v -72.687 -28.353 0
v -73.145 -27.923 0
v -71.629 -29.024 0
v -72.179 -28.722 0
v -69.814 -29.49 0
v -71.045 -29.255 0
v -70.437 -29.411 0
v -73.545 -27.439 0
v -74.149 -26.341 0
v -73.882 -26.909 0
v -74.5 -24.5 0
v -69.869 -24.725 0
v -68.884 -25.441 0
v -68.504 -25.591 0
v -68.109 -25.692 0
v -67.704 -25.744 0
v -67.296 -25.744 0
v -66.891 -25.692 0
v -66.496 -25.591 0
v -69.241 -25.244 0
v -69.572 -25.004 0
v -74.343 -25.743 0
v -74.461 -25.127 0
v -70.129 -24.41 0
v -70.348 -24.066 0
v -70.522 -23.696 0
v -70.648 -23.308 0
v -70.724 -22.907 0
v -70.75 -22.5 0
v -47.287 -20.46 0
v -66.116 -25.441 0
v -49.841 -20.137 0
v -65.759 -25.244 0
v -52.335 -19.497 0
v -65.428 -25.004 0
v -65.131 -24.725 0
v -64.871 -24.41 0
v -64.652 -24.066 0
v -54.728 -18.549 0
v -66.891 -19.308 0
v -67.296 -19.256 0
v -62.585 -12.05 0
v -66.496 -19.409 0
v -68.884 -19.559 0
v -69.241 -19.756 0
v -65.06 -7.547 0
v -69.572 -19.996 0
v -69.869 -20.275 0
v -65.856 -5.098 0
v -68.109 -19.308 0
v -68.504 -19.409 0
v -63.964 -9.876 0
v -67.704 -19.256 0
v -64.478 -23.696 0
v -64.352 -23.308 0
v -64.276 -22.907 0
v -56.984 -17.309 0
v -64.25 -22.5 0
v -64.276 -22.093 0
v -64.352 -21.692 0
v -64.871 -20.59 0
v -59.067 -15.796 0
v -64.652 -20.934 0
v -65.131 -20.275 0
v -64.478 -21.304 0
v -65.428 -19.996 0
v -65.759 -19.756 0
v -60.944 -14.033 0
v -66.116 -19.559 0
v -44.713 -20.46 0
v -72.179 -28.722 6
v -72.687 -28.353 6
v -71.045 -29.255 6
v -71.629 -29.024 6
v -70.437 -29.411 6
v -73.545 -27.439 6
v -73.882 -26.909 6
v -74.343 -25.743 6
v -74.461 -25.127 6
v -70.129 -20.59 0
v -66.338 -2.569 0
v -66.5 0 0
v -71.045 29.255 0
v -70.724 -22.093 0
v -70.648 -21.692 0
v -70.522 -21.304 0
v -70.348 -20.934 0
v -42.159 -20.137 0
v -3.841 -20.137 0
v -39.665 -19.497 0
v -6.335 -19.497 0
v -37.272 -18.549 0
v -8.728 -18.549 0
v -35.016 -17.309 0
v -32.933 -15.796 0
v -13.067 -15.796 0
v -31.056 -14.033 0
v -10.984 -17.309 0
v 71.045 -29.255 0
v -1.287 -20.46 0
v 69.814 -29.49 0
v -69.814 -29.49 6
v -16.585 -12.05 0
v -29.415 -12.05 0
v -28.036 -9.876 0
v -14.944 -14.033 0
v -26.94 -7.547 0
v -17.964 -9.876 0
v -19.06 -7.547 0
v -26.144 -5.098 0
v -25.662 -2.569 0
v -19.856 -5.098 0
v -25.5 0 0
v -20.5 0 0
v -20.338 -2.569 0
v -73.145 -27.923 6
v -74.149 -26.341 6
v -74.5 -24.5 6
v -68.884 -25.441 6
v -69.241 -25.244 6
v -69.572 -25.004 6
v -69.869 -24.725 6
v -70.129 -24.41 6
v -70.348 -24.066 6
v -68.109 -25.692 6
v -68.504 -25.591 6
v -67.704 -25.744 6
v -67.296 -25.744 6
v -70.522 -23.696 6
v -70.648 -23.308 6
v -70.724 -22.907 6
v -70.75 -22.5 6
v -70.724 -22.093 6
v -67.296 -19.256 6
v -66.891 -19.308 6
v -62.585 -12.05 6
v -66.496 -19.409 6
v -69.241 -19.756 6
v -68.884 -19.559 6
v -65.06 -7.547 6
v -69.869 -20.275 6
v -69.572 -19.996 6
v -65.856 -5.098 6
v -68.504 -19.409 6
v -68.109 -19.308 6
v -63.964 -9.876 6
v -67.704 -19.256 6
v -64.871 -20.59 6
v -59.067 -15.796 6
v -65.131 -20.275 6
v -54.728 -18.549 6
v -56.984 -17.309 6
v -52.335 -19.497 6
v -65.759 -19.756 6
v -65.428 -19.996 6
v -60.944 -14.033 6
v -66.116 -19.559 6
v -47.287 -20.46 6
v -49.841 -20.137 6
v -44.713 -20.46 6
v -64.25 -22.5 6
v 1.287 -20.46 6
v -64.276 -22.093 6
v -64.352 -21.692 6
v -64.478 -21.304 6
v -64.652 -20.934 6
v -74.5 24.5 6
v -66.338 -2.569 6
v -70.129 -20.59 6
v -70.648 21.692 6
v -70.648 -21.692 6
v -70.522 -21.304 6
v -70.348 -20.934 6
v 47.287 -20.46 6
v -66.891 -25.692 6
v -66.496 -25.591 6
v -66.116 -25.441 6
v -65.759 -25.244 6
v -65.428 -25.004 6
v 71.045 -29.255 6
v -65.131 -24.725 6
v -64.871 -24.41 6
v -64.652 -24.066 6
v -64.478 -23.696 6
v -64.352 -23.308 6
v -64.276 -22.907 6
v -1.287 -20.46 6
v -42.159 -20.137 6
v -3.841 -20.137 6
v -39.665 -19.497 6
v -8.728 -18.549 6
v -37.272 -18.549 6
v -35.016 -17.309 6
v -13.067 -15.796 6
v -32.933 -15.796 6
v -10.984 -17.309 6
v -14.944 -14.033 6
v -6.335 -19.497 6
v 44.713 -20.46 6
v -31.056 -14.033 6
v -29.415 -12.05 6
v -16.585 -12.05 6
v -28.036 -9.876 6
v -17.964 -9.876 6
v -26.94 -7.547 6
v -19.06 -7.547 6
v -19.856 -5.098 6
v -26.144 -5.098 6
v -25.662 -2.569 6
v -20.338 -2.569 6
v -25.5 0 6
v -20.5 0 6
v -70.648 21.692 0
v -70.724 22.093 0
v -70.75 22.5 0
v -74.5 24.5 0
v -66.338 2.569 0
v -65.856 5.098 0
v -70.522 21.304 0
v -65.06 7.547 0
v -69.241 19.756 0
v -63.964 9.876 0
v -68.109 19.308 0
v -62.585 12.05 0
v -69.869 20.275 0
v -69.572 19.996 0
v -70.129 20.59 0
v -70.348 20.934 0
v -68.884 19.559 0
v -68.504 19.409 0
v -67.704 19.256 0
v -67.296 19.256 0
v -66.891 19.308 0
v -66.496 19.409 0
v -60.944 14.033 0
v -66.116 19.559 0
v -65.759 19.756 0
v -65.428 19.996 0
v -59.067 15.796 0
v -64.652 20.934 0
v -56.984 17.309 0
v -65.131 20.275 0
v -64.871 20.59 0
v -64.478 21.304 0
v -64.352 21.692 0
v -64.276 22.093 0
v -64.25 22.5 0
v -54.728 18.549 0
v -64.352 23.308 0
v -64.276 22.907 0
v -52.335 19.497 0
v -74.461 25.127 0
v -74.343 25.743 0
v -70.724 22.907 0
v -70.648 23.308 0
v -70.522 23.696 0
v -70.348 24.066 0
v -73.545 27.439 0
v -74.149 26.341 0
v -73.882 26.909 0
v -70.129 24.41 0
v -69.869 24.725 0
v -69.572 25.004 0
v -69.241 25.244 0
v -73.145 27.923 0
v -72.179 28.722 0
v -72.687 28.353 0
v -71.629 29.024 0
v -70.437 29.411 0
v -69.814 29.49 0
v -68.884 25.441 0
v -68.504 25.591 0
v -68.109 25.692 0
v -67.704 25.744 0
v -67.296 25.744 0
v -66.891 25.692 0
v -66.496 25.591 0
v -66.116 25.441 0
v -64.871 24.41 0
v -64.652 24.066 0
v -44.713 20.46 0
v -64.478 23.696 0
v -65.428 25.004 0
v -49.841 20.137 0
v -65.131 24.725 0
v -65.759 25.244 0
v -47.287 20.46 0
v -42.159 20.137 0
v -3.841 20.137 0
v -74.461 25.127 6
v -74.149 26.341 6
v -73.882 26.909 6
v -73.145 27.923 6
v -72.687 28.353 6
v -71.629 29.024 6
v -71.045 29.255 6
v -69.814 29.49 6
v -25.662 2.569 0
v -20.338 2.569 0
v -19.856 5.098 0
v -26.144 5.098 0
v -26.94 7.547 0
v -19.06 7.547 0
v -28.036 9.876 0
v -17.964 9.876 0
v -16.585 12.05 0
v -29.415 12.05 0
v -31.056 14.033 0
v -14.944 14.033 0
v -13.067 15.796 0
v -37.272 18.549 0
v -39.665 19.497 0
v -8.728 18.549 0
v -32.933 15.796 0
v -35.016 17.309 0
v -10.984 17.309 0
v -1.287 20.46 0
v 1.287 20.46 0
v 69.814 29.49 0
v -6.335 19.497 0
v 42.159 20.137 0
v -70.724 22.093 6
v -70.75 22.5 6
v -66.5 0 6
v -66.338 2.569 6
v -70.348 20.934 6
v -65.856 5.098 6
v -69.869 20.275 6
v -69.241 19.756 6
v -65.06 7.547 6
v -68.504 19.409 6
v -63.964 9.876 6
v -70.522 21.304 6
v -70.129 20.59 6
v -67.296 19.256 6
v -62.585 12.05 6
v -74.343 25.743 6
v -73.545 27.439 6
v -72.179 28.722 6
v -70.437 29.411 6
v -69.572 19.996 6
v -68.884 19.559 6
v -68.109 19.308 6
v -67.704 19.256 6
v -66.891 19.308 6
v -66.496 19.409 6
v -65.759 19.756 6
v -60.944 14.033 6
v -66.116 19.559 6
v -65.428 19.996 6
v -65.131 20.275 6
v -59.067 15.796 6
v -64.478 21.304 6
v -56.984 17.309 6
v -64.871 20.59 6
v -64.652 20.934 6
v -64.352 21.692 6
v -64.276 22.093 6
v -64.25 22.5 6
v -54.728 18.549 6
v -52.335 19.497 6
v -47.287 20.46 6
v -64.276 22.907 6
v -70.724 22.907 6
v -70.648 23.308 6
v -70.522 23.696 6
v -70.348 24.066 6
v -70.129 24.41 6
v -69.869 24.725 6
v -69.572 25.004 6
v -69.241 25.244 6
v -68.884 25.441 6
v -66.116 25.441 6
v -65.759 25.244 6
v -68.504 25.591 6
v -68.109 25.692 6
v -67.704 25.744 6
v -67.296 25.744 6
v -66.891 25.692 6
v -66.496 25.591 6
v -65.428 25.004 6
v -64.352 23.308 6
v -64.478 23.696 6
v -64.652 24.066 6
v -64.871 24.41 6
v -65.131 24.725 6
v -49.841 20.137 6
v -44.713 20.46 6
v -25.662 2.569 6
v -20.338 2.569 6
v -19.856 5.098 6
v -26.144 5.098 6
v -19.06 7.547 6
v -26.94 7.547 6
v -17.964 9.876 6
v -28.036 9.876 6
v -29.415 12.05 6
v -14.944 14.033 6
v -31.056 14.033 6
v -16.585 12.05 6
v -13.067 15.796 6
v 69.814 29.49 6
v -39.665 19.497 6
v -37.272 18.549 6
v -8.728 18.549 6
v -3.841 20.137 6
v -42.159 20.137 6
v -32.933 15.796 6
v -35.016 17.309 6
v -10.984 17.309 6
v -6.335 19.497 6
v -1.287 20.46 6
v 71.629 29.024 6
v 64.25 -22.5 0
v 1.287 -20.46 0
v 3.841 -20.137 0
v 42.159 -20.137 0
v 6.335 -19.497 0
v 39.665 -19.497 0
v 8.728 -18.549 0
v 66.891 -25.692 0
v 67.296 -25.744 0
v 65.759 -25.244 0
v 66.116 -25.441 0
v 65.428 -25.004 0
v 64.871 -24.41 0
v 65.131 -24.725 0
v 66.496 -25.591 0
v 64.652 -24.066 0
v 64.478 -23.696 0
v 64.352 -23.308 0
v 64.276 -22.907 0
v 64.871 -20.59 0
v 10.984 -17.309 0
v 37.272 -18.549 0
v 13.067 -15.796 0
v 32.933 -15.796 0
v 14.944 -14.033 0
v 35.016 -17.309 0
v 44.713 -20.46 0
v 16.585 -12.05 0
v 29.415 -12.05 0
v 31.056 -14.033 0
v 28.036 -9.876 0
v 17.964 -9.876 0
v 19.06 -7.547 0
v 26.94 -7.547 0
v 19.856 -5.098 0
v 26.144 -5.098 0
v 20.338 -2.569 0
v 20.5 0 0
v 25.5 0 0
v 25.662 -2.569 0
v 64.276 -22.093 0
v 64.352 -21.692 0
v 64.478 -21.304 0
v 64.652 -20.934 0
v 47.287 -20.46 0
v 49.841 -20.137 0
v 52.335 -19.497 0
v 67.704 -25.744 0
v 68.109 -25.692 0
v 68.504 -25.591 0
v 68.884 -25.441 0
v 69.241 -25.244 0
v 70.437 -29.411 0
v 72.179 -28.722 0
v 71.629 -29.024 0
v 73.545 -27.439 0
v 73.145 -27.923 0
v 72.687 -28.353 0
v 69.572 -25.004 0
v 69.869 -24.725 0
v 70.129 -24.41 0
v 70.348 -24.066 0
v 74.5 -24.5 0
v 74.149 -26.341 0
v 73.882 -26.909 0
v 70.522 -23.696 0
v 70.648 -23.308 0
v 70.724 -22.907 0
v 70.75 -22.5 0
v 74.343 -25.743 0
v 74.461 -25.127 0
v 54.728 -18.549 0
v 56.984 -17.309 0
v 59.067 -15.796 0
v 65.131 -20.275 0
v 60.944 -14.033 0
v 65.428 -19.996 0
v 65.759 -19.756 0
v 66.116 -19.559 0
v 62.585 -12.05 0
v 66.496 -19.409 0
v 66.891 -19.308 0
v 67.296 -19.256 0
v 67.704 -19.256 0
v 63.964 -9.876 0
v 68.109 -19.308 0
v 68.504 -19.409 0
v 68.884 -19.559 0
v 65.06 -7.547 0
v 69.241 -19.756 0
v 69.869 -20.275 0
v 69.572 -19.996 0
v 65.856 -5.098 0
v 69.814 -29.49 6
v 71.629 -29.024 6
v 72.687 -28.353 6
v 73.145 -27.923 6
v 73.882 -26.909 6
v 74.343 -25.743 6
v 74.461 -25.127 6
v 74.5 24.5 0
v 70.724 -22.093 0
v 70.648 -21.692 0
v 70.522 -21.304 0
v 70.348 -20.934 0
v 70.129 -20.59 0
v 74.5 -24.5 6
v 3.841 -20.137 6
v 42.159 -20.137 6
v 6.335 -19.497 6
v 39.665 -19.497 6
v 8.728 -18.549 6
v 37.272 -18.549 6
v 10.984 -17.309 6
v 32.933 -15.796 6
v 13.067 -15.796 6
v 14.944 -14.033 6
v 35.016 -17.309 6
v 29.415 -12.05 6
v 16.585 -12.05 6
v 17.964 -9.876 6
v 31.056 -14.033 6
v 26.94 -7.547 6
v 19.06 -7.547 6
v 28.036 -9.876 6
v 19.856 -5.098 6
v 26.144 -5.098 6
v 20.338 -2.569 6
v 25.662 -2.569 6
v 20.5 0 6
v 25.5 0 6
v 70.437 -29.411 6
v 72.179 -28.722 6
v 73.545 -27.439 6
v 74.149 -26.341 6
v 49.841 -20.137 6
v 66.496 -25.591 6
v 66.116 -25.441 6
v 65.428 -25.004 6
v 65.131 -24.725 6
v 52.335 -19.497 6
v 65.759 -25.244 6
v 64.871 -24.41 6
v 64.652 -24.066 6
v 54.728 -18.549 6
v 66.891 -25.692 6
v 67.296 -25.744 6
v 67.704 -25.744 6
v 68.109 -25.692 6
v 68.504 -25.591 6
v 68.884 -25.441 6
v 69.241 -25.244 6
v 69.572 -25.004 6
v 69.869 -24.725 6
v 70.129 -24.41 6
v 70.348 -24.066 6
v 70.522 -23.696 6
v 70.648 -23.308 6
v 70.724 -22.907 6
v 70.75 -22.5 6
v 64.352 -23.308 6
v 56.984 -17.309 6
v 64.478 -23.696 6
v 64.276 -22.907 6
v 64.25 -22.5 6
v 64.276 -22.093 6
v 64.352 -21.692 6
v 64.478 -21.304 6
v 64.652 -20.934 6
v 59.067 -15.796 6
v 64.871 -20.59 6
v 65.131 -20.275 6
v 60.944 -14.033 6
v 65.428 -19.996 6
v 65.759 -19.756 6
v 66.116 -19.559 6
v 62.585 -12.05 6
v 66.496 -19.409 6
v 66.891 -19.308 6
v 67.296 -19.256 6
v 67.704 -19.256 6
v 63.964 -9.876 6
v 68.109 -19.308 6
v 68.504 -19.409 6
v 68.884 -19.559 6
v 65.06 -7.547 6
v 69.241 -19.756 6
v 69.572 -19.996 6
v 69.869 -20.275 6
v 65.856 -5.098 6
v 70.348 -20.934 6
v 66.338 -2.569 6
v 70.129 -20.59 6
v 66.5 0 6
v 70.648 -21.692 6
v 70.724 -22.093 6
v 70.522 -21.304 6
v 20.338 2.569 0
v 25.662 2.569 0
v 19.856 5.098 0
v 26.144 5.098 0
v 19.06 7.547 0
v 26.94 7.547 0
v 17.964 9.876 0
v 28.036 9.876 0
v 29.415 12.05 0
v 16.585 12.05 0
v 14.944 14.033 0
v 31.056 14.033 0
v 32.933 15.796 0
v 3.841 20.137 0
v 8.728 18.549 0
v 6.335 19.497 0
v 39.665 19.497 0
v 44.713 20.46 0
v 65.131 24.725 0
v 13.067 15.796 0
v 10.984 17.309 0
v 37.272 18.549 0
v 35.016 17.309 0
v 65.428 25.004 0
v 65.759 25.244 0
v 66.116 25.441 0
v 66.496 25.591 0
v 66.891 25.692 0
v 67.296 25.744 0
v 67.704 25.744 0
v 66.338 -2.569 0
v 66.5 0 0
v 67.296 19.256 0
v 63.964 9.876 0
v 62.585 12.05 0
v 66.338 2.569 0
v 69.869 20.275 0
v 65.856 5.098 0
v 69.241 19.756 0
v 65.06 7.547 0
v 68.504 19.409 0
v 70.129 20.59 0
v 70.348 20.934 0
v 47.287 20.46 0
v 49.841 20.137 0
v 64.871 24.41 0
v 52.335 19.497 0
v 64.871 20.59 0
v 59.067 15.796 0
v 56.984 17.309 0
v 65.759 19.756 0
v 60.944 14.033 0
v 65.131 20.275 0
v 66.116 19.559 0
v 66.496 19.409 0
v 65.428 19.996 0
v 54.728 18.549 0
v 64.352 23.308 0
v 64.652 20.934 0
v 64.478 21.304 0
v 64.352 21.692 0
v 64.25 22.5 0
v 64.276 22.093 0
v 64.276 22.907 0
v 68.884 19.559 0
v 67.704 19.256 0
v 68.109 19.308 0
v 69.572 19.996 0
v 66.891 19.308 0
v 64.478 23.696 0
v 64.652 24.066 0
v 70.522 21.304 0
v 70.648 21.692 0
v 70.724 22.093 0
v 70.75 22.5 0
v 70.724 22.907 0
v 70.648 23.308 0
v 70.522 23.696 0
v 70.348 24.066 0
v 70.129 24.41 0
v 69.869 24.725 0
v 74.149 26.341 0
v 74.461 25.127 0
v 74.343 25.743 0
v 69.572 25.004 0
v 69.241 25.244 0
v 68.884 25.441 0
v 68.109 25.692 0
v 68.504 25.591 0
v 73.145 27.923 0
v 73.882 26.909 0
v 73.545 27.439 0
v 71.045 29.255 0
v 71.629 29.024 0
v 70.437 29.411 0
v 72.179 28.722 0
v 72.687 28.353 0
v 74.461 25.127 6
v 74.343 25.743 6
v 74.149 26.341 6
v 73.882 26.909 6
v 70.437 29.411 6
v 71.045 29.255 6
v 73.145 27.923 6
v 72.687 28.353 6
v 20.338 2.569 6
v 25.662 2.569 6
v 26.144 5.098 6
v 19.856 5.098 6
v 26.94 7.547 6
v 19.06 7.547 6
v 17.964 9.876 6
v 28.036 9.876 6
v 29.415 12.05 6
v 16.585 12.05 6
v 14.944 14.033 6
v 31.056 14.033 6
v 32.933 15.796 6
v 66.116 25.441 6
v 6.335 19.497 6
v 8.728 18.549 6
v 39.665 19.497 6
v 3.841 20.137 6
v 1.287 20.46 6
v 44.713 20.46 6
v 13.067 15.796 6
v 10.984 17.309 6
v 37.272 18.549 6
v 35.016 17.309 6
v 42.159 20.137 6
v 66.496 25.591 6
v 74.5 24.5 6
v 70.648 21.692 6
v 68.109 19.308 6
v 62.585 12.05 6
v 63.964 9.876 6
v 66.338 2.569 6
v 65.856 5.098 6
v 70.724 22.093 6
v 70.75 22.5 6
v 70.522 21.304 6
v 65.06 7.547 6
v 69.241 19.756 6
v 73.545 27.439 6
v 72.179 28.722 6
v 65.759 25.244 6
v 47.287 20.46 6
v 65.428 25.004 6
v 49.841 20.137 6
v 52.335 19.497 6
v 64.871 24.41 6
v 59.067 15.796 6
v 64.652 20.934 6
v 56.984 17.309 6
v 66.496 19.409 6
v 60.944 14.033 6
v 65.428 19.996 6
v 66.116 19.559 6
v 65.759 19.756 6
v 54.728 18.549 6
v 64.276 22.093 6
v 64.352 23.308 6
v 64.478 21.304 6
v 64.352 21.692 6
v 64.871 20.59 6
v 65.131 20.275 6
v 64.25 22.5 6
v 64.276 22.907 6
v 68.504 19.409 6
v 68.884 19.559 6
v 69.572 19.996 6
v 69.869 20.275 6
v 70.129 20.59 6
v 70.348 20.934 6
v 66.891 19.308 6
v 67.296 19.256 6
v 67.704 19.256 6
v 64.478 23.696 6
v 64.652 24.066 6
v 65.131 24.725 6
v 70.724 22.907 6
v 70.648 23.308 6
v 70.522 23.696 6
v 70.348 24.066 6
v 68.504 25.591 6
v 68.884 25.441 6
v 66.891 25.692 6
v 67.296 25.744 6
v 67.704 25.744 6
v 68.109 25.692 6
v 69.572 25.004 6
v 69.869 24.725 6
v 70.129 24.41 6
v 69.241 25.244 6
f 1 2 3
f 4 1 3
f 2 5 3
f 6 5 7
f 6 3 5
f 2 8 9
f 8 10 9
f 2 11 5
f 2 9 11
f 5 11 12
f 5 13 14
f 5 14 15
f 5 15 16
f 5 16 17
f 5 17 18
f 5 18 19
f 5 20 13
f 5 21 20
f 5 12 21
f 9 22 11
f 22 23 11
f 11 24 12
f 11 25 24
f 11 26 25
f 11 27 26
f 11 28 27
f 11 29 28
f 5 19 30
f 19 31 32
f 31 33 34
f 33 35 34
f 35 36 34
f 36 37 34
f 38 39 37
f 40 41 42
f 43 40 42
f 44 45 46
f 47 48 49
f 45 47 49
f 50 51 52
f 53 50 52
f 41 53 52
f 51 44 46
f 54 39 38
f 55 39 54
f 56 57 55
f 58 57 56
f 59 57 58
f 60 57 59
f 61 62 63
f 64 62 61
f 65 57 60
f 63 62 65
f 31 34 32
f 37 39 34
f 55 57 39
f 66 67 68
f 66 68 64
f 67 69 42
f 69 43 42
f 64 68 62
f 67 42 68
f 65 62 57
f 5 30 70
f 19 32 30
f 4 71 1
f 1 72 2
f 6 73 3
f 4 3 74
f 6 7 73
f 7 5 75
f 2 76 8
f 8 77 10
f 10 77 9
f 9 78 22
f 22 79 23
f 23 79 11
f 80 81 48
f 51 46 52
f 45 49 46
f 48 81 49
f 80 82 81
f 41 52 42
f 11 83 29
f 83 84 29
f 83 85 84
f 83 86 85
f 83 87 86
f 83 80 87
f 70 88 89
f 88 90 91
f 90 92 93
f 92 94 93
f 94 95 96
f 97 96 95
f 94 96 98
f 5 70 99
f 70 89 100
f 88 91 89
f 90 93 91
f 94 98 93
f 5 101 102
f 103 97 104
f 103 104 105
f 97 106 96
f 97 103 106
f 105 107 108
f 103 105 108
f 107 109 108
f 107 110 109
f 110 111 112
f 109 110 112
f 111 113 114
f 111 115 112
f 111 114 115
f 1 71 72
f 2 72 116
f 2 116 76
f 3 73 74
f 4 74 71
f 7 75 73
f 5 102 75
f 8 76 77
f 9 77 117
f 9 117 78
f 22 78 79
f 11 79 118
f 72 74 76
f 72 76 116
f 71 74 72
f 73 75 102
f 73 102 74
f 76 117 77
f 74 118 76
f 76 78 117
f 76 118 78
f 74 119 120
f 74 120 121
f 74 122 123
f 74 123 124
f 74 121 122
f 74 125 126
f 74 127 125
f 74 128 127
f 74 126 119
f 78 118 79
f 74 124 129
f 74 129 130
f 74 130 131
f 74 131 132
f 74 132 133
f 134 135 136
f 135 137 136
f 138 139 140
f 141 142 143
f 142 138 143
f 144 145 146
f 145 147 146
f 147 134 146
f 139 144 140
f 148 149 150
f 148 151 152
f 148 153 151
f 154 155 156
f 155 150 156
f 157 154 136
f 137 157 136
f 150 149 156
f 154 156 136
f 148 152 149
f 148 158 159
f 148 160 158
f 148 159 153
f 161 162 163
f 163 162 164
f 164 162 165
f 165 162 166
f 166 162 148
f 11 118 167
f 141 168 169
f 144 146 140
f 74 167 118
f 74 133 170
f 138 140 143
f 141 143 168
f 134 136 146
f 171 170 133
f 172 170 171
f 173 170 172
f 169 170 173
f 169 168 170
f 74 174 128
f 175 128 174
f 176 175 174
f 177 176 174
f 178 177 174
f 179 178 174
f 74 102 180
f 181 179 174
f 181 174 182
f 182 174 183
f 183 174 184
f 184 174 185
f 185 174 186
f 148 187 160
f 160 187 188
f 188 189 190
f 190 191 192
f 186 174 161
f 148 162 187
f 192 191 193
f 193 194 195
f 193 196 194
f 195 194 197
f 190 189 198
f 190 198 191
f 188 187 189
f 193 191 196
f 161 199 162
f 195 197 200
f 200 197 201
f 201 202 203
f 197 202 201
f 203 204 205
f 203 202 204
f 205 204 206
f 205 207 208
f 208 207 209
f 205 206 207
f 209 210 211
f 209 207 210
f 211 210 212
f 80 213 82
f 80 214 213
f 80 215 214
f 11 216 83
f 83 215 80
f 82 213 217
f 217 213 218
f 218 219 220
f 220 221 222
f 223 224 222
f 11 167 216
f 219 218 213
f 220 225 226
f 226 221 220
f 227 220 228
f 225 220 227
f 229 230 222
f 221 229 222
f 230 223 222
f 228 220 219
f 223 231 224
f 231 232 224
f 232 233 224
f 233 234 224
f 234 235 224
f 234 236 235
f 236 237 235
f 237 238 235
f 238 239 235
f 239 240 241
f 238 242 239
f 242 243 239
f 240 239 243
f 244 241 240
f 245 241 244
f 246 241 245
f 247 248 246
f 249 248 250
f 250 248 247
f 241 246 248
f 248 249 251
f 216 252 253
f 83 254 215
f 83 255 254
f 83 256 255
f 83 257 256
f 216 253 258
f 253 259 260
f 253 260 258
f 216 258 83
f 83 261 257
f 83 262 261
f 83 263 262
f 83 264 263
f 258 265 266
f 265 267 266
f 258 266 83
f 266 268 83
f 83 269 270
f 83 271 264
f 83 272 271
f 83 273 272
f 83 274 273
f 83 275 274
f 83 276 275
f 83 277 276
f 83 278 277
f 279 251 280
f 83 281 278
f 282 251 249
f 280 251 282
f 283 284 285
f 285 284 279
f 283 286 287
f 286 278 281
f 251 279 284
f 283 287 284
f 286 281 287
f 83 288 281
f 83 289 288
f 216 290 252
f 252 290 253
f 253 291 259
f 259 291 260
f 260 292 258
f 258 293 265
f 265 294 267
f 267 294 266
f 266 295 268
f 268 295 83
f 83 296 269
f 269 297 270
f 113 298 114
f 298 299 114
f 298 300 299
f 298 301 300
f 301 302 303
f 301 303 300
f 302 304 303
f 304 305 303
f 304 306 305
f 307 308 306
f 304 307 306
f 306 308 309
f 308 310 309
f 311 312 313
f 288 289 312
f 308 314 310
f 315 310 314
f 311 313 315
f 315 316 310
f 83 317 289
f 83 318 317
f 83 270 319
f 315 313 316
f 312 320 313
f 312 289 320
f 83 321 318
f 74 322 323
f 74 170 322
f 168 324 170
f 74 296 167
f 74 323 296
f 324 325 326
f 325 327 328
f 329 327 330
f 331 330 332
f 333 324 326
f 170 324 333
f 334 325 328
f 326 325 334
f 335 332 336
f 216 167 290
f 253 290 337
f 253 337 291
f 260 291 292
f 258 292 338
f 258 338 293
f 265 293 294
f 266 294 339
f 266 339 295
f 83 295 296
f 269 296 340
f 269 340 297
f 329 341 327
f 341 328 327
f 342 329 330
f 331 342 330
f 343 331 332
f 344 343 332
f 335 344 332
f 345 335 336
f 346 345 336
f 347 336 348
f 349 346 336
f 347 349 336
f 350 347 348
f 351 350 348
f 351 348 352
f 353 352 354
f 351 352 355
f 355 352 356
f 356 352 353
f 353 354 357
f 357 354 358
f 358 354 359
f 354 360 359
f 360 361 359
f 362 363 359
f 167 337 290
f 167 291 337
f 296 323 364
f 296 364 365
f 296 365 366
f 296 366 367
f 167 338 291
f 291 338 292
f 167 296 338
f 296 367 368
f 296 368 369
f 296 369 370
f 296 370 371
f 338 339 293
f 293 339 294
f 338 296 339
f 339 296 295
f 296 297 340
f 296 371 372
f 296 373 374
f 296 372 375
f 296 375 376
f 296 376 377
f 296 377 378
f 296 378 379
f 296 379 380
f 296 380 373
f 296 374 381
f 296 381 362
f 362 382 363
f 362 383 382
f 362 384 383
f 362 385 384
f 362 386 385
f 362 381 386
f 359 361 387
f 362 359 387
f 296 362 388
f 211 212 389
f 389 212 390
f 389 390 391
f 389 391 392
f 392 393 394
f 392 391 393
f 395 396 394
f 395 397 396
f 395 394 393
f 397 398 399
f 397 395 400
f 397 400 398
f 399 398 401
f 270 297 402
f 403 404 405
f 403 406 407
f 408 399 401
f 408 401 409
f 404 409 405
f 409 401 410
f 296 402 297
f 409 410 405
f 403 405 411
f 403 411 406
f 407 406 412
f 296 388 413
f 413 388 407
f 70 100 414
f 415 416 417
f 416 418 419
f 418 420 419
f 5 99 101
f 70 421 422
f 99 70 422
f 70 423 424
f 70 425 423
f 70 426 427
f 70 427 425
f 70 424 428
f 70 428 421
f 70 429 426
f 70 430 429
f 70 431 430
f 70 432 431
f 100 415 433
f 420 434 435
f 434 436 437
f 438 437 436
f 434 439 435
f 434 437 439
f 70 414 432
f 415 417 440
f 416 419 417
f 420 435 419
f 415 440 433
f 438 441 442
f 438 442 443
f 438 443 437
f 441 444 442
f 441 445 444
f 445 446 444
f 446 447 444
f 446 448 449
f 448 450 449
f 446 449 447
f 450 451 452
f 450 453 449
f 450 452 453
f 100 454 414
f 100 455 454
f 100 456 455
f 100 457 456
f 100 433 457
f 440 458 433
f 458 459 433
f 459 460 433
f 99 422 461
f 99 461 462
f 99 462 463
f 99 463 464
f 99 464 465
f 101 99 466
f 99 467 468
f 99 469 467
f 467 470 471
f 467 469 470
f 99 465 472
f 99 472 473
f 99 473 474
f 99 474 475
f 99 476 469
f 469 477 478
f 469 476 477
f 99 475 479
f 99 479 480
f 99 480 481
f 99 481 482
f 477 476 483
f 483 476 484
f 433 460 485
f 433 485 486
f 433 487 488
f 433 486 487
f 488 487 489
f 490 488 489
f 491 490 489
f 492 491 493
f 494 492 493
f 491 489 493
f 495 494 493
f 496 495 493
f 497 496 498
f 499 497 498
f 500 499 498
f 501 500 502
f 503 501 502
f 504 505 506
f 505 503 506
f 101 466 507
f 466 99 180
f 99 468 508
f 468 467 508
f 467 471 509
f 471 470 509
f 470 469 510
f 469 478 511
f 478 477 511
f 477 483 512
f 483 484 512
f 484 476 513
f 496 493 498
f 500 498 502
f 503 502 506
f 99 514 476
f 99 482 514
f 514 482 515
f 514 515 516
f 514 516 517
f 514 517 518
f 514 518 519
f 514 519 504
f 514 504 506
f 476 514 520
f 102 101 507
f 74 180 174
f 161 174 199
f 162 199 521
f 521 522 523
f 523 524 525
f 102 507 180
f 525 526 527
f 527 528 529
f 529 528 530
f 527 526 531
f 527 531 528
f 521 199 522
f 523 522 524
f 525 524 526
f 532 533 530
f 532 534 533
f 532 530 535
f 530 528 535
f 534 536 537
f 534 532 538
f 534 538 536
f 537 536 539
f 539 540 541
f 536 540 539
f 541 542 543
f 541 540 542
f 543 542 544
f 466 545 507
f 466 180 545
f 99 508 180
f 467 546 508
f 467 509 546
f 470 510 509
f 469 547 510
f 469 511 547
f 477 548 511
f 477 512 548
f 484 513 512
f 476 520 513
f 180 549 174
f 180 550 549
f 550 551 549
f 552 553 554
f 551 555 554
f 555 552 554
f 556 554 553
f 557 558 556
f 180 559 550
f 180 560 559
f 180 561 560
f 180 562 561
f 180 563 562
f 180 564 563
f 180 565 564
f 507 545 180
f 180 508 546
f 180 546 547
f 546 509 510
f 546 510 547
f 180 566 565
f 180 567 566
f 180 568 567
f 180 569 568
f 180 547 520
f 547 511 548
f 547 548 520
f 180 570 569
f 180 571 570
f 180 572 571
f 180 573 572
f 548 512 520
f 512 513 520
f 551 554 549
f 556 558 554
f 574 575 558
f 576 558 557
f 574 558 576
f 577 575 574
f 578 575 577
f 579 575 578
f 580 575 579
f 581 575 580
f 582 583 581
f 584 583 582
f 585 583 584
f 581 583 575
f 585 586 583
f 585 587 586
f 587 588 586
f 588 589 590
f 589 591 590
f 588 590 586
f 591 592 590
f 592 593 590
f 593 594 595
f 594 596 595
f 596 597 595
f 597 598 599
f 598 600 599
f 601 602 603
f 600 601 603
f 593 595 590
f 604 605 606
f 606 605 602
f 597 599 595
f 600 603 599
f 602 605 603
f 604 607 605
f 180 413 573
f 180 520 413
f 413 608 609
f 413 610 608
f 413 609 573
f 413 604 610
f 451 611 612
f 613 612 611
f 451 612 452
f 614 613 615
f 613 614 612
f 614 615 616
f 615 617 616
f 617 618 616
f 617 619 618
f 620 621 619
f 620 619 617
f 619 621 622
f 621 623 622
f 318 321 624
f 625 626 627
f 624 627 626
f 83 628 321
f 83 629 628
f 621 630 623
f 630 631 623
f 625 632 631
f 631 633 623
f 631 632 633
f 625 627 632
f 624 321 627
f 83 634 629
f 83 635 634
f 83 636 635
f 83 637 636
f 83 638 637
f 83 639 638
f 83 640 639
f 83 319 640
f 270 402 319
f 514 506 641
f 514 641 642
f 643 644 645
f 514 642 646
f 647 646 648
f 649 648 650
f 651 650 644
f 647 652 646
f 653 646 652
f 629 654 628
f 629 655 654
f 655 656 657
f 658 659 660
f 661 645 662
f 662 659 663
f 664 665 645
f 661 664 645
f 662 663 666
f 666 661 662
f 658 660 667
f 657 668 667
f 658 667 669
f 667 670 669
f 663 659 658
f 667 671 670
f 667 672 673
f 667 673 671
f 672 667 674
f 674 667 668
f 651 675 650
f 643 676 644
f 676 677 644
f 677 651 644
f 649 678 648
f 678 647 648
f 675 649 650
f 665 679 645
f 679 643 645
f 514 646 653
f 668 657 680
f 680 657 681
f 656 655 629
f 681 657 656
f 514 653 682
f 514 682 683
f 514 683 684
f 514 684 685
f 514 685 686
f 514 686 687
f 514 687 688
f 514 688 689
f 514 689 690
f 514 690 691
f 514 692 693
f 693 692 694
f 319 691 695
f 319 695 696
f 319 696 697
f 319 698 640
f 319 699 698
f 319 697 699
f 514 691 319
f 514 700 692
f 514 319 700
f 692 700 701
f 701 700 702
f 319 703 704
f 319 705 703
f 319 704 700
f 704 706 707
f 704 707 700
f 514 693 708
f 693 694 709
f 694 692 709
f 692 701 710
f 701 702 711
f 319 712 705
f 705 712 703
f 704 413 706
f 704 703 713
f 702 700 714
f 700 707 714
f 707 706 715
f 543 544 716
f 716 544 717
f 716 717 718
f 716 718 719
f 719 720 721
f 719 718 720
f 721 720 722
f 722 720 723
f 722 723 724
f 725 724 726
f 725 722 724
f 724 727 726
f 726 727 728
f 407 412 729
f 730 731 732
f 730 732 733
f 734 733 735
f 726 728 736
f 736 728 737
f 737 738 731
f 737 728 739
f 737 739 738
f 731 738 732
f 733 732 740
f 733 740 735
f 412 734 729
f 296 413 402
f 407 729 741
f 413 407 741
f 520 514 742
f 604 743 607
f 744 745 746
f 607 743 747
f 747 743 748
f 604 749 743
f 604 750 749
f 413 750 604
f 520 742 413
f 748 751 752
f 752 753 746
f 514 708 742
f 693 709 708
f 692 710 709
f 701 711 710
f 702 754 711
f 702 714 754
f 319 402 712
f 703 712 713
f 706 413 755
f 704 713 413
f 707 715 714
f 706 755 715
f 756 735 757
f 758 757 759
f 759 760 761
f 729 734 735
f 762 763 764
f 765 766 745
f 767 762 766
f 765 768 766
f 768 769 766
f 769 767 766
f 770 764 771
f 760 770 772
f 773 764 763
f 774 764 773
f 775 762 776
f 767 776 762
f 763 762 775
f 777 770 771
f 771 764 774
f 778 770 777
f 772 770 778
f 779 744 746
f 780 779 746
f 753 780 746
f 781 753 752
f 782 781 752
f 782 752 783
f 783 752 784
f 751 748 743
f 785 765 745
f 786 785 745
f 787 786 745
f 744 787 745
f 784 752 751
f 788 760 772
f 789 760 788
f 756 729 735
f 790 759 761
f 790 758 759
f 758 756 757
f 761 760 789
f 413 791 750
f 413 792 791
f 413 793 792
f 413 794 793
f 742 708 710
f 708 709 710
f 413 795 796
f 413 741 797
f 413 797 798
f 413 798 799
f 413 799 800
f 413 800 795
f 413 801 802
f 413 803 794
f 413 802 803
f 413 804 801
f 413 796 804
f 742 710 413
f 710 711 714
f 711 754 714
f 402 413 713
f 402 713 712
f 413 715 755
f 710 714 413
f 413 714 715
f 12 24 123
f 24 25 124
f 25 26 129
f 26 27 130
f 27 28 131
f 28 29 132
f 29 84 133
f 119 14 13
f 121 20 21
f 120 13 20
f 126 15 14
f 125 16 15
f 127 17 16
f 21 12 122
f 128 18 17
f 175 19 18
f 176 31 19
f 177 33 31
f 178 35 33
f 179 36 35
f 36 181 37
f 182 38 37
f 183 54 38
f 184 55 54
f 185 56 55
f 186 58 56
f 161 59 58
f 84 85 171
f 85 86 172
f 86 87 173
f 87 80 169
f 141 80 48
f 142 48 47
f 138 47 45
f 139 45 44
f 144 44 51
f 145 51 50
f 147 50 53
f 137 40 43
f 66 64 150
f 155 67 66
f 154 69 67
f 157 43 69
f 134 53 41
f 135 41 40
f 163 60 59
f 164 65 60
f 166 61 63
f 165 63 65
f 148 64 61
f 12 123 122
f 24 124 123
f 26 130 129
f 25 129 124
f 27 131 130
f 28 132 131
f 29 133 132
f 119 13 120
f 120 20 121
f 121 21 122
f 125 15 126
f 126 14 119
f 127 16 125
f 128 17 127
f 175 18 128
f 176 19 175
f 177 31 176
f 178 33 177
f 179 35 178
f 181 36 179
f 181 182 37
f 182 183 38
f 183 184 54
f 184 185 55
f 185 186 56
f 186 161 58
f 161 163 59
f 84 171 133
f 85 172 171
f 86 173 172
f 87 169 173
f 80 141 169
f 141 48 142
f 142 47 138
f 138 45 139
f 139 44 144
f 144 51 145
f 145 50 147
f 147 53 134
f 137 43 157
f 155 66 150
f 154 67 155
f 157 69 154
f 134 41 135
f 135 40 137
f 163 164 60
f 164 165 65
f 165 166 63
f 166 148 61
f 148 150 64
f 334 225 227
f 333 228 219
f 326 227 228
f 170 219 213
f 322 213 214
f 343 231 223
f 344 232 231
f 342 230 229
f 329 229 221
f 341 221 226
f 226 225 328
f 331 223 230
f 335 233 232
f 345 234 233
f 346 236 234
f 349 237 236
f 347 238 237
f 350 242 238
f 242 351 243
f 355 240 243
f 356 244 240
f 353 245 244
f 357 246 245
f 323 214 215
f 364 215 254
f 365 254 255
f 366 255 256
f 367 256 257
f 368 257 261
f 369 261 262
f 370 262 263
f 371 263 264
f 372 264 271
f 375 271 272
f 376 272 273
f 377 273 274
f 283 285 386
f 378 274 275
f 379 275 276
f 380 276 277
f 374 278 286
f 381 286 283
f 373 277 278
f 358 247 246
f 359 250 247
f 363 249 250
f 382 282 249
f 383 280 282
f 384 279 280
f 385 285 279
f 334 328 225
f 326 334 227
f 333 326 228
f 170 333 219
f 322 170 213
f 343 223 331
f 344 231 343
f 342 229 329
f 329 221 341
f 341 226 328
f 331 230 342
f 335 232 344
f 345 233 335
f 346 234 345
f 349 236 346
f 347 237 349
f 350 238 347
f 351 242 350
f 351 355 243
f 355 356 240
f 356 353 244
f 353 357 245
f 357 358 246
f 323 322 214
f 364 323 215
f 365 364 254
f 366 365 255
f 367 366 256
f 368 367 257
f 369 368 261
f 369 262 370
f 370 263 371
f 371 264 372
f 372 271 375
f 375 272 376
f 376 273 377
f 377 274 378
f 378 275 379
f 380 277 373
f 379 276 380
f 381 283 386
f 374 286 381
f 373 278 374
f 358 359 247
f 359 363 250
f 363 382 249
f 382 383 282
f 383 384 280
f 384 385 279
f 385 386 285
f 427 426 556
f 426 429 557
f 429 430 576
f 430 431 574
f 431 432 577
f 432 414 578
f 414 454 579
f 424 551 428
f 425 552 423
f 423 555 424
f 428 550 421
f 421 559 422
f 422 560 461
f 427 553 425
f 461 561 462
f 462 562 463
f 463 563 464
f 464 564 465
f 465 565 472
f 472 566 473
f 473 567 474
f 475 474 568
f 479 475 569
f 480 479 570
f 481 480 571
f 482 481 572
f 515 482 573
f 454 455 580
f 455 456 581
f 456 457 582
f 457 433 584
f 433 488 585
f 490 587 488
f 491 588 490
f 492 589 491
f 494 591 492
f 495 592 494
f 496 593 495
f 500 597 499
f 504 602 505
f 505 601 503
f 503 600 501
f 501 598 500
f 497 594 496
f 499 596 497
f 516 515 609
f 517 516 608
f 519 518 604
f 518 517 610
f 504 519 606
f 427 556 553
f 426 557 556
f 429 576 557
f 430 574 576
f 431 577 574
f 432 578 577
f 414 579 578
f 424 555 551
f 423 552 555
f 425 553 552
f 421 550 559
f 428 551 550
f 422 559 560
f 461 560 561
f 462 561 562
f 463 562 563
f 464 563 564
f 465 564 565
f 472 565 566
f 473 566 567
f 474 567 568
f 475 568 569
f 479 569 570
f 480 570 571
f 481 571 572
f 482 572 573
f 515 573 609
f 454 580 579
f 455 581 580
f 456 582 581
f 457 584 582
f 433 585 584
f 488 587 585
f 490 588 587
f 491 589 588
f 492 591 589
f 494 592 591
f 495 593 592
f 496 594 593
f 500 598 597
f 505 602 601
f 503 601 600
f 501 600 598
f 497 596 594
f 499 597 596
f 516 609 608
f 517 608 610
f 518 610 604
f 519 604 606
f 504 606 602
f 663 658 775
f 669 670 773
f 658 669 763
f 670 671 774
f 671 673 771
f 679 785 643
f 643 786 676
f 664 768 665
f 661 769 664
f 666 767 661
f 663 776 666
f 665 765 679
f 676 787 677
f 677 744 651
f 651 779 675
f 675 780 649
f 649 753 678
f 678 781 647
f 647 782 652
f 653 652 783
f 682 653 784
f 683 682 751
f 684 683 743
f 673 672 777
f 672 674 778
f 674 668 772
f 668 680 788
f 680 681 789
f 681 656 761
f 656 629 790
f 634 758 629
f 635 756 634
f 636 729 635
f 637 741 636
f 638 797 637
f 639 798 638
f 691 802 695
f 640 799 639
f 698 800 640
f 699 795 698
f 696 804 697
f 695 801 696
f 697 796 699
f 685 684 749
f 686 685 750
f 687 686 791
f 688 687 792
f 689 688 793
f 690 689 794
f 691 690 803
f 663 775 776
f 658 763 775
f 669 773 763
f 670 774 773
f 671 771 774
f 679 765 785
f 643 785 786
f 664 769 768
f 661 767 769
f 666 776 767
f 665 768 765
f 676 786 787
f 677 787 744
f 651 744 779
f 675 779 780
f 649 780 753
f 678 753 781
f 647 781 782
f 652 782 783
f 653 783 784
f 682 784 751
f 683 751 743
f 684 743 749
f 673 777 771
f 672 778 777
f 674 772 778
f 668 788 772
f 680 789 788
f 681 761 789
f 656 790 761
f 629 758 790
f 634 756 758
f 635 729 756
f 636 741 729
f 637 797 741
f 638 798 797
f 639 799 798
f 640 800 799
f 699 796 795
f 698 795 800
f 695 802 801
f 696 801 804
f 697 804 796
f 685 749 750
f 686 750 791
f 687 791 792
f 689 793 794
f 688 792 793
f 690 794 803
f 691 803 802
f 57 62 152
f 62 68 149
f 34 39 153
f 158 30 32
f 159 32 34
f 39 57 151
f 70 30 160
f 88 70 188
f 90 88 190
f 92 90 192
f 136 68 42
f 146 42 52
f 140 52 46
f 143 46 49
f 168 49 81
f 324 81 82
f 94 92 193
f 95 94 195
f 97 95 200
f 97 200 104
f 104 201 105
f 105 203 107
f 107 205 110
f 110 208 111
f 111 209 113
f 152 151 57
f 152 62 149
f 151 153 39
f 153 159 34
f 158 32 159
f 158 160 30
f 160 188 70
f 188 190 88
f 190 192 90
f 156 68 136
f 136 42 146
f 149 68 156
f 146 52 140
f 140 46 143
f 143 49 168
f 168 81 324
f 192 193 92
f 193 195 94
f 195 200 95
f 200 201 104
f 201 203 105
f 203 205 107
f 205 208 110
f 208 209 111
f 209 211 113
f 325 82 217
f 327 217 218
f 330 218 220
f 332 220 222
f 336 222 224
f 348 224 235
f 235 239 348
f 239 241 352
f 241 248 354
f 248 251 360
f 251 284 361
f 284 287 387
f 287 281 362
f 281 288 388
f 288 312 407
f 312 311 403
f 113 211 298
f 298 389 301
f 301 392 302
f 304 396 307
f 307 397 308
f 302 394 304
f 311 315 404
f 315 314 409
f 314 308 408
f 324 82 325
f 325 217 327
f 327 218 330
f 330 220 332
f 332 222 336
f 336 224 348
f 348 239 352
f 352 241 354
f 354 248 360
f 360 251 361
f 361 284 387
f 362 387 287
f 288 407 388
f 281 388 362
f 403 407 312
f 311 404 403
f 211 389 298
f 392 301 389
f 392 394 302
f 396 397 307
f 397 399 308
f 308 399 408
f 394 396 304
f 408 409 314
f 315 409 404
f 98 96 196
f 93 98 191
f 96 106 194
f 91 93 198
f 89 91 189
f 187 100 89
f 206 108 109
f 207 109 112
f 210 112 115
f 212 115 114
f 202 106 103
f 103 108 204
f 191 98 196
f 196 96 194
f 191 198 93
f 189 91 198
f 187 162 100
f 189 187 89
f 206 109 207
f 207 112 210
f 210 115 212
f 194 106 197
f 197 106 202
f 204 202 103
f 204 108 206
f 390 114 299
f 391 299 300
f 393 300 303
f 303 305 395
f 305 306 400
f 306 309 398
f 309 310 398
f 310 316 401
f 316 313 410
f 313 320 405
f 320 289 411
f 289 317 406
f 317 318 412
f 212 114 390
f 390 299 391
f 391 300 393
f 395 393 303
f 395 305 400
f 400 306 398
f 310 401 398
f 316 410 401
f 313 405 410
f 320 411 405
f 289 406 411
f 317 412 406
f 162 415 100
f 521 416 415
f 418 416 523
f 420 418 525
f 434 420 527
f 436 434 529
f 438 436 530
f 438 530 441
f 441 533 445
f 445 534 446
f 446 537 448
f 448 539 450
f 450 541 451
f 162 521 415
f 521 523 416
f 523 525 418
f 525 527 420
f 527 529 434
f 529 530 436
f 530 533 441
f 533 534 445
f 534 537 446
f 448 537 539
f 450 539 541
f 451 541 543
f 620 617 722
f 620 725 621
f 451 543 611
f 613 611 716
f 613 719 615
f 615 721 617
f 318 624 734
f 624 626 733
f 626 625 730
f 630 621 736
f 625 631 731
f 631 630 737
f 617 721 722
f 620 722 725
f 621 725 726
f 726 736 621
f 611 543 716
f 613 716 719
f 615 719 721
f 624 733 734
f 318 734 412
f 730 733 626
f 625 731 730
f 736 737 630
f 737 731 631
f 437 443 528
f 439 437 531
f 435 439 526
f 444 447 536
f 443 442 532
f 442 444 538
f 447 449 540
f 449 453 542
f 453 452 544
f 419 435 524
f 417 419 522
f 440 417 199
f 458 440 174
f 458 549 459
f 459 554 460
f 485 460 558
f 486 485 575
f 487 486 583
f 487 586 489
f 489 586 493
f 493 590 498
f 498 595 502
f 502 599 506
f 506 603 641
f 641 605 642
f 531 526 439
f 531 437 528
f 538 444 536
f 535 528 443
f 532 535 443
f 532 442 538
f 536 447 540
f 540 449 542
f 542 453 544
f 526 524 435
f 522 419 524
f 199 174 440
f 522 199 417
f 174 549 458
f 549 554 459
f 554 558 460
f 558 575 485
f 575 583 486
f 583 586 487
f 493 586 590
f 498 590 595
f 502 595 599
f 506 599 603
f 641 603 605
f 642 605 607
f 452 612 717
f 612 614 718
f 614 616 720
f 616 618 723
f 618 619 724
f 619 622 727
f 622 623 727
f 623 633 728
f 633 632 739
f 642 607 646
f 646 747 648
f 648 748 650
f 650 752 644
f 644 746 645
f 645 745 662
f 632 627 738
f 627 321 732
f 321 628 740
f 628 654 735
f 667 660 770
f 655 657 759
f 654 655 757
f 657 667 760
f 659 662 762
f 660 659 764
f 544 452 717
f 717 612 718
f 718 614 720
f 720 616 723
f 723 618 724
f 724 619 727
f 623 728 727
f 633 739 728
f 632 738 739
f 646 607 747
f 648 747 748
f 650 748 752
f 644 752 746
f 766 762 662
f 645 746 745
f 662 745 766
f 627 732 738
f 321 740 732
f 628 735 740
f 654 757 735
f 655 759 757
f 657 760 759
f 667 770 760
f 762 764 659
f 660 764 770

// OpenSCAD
$fn = 50;

difference() {
	union() {
		hull() {
			translate(v = [-69.5, 24.5, 0]) {
				cylinder(h = 6, r = 5);
			}
			translate(v = [69.5, 24.5, 0]) {
				cylinder(h = 6, r = 5);
			}
			translate(v = [-69.5, -24.5, 0]) {
				cylinder(h = 6, r = 5);
			}
			translate(v = [69.5, -24.5, 0]) {
				cylinder(h = 6, r = 5);
			}
		}
	}
	union() {
		translate(v = [-67.5, -22.5, -100.0]) {
			cylinder(h = 200, r = 3.25);
		}
		translate(v = [-67.5, 22.5, -100.0]) {
			cylinder(h = 200, r = 3.25);
		}
		translate(v = [67.5, -22.5, -100.0]) {
			cylinder(h = 200, r = 3.25);
		}
		translate(v = [67.5, 22.5, -100.0]) {
			cylinder(h = 200, r = 3.25);
		}
		translate(v = [-67.5, -22.5, -100.0]) {
			cylinder(h = 200, r = 1.8);
		}
		translate(v = [-67.5, 22.5, -100.0]) {
			cylinder(h = 200, r = 1.8);
		}
		translate(v = [67.5, -22.5, -100.0]) {
			cylinder(h = 200, r = 1.8);
		}
		translate(v = [67.5, 22.5, -100.0]) {
			cylinder(h = 200, r = 1.8);
		}
		translate(v = [-46.0, 0, 0.0]) {
			cylinder(h = 6, r = 20.5);
		}
		cylinder(h = 6, r = 20.5);
		translate(v = [46.0, 0, 0.0]) {
			cylinder(h = 6, r = 20.5);
		}
	}
}
